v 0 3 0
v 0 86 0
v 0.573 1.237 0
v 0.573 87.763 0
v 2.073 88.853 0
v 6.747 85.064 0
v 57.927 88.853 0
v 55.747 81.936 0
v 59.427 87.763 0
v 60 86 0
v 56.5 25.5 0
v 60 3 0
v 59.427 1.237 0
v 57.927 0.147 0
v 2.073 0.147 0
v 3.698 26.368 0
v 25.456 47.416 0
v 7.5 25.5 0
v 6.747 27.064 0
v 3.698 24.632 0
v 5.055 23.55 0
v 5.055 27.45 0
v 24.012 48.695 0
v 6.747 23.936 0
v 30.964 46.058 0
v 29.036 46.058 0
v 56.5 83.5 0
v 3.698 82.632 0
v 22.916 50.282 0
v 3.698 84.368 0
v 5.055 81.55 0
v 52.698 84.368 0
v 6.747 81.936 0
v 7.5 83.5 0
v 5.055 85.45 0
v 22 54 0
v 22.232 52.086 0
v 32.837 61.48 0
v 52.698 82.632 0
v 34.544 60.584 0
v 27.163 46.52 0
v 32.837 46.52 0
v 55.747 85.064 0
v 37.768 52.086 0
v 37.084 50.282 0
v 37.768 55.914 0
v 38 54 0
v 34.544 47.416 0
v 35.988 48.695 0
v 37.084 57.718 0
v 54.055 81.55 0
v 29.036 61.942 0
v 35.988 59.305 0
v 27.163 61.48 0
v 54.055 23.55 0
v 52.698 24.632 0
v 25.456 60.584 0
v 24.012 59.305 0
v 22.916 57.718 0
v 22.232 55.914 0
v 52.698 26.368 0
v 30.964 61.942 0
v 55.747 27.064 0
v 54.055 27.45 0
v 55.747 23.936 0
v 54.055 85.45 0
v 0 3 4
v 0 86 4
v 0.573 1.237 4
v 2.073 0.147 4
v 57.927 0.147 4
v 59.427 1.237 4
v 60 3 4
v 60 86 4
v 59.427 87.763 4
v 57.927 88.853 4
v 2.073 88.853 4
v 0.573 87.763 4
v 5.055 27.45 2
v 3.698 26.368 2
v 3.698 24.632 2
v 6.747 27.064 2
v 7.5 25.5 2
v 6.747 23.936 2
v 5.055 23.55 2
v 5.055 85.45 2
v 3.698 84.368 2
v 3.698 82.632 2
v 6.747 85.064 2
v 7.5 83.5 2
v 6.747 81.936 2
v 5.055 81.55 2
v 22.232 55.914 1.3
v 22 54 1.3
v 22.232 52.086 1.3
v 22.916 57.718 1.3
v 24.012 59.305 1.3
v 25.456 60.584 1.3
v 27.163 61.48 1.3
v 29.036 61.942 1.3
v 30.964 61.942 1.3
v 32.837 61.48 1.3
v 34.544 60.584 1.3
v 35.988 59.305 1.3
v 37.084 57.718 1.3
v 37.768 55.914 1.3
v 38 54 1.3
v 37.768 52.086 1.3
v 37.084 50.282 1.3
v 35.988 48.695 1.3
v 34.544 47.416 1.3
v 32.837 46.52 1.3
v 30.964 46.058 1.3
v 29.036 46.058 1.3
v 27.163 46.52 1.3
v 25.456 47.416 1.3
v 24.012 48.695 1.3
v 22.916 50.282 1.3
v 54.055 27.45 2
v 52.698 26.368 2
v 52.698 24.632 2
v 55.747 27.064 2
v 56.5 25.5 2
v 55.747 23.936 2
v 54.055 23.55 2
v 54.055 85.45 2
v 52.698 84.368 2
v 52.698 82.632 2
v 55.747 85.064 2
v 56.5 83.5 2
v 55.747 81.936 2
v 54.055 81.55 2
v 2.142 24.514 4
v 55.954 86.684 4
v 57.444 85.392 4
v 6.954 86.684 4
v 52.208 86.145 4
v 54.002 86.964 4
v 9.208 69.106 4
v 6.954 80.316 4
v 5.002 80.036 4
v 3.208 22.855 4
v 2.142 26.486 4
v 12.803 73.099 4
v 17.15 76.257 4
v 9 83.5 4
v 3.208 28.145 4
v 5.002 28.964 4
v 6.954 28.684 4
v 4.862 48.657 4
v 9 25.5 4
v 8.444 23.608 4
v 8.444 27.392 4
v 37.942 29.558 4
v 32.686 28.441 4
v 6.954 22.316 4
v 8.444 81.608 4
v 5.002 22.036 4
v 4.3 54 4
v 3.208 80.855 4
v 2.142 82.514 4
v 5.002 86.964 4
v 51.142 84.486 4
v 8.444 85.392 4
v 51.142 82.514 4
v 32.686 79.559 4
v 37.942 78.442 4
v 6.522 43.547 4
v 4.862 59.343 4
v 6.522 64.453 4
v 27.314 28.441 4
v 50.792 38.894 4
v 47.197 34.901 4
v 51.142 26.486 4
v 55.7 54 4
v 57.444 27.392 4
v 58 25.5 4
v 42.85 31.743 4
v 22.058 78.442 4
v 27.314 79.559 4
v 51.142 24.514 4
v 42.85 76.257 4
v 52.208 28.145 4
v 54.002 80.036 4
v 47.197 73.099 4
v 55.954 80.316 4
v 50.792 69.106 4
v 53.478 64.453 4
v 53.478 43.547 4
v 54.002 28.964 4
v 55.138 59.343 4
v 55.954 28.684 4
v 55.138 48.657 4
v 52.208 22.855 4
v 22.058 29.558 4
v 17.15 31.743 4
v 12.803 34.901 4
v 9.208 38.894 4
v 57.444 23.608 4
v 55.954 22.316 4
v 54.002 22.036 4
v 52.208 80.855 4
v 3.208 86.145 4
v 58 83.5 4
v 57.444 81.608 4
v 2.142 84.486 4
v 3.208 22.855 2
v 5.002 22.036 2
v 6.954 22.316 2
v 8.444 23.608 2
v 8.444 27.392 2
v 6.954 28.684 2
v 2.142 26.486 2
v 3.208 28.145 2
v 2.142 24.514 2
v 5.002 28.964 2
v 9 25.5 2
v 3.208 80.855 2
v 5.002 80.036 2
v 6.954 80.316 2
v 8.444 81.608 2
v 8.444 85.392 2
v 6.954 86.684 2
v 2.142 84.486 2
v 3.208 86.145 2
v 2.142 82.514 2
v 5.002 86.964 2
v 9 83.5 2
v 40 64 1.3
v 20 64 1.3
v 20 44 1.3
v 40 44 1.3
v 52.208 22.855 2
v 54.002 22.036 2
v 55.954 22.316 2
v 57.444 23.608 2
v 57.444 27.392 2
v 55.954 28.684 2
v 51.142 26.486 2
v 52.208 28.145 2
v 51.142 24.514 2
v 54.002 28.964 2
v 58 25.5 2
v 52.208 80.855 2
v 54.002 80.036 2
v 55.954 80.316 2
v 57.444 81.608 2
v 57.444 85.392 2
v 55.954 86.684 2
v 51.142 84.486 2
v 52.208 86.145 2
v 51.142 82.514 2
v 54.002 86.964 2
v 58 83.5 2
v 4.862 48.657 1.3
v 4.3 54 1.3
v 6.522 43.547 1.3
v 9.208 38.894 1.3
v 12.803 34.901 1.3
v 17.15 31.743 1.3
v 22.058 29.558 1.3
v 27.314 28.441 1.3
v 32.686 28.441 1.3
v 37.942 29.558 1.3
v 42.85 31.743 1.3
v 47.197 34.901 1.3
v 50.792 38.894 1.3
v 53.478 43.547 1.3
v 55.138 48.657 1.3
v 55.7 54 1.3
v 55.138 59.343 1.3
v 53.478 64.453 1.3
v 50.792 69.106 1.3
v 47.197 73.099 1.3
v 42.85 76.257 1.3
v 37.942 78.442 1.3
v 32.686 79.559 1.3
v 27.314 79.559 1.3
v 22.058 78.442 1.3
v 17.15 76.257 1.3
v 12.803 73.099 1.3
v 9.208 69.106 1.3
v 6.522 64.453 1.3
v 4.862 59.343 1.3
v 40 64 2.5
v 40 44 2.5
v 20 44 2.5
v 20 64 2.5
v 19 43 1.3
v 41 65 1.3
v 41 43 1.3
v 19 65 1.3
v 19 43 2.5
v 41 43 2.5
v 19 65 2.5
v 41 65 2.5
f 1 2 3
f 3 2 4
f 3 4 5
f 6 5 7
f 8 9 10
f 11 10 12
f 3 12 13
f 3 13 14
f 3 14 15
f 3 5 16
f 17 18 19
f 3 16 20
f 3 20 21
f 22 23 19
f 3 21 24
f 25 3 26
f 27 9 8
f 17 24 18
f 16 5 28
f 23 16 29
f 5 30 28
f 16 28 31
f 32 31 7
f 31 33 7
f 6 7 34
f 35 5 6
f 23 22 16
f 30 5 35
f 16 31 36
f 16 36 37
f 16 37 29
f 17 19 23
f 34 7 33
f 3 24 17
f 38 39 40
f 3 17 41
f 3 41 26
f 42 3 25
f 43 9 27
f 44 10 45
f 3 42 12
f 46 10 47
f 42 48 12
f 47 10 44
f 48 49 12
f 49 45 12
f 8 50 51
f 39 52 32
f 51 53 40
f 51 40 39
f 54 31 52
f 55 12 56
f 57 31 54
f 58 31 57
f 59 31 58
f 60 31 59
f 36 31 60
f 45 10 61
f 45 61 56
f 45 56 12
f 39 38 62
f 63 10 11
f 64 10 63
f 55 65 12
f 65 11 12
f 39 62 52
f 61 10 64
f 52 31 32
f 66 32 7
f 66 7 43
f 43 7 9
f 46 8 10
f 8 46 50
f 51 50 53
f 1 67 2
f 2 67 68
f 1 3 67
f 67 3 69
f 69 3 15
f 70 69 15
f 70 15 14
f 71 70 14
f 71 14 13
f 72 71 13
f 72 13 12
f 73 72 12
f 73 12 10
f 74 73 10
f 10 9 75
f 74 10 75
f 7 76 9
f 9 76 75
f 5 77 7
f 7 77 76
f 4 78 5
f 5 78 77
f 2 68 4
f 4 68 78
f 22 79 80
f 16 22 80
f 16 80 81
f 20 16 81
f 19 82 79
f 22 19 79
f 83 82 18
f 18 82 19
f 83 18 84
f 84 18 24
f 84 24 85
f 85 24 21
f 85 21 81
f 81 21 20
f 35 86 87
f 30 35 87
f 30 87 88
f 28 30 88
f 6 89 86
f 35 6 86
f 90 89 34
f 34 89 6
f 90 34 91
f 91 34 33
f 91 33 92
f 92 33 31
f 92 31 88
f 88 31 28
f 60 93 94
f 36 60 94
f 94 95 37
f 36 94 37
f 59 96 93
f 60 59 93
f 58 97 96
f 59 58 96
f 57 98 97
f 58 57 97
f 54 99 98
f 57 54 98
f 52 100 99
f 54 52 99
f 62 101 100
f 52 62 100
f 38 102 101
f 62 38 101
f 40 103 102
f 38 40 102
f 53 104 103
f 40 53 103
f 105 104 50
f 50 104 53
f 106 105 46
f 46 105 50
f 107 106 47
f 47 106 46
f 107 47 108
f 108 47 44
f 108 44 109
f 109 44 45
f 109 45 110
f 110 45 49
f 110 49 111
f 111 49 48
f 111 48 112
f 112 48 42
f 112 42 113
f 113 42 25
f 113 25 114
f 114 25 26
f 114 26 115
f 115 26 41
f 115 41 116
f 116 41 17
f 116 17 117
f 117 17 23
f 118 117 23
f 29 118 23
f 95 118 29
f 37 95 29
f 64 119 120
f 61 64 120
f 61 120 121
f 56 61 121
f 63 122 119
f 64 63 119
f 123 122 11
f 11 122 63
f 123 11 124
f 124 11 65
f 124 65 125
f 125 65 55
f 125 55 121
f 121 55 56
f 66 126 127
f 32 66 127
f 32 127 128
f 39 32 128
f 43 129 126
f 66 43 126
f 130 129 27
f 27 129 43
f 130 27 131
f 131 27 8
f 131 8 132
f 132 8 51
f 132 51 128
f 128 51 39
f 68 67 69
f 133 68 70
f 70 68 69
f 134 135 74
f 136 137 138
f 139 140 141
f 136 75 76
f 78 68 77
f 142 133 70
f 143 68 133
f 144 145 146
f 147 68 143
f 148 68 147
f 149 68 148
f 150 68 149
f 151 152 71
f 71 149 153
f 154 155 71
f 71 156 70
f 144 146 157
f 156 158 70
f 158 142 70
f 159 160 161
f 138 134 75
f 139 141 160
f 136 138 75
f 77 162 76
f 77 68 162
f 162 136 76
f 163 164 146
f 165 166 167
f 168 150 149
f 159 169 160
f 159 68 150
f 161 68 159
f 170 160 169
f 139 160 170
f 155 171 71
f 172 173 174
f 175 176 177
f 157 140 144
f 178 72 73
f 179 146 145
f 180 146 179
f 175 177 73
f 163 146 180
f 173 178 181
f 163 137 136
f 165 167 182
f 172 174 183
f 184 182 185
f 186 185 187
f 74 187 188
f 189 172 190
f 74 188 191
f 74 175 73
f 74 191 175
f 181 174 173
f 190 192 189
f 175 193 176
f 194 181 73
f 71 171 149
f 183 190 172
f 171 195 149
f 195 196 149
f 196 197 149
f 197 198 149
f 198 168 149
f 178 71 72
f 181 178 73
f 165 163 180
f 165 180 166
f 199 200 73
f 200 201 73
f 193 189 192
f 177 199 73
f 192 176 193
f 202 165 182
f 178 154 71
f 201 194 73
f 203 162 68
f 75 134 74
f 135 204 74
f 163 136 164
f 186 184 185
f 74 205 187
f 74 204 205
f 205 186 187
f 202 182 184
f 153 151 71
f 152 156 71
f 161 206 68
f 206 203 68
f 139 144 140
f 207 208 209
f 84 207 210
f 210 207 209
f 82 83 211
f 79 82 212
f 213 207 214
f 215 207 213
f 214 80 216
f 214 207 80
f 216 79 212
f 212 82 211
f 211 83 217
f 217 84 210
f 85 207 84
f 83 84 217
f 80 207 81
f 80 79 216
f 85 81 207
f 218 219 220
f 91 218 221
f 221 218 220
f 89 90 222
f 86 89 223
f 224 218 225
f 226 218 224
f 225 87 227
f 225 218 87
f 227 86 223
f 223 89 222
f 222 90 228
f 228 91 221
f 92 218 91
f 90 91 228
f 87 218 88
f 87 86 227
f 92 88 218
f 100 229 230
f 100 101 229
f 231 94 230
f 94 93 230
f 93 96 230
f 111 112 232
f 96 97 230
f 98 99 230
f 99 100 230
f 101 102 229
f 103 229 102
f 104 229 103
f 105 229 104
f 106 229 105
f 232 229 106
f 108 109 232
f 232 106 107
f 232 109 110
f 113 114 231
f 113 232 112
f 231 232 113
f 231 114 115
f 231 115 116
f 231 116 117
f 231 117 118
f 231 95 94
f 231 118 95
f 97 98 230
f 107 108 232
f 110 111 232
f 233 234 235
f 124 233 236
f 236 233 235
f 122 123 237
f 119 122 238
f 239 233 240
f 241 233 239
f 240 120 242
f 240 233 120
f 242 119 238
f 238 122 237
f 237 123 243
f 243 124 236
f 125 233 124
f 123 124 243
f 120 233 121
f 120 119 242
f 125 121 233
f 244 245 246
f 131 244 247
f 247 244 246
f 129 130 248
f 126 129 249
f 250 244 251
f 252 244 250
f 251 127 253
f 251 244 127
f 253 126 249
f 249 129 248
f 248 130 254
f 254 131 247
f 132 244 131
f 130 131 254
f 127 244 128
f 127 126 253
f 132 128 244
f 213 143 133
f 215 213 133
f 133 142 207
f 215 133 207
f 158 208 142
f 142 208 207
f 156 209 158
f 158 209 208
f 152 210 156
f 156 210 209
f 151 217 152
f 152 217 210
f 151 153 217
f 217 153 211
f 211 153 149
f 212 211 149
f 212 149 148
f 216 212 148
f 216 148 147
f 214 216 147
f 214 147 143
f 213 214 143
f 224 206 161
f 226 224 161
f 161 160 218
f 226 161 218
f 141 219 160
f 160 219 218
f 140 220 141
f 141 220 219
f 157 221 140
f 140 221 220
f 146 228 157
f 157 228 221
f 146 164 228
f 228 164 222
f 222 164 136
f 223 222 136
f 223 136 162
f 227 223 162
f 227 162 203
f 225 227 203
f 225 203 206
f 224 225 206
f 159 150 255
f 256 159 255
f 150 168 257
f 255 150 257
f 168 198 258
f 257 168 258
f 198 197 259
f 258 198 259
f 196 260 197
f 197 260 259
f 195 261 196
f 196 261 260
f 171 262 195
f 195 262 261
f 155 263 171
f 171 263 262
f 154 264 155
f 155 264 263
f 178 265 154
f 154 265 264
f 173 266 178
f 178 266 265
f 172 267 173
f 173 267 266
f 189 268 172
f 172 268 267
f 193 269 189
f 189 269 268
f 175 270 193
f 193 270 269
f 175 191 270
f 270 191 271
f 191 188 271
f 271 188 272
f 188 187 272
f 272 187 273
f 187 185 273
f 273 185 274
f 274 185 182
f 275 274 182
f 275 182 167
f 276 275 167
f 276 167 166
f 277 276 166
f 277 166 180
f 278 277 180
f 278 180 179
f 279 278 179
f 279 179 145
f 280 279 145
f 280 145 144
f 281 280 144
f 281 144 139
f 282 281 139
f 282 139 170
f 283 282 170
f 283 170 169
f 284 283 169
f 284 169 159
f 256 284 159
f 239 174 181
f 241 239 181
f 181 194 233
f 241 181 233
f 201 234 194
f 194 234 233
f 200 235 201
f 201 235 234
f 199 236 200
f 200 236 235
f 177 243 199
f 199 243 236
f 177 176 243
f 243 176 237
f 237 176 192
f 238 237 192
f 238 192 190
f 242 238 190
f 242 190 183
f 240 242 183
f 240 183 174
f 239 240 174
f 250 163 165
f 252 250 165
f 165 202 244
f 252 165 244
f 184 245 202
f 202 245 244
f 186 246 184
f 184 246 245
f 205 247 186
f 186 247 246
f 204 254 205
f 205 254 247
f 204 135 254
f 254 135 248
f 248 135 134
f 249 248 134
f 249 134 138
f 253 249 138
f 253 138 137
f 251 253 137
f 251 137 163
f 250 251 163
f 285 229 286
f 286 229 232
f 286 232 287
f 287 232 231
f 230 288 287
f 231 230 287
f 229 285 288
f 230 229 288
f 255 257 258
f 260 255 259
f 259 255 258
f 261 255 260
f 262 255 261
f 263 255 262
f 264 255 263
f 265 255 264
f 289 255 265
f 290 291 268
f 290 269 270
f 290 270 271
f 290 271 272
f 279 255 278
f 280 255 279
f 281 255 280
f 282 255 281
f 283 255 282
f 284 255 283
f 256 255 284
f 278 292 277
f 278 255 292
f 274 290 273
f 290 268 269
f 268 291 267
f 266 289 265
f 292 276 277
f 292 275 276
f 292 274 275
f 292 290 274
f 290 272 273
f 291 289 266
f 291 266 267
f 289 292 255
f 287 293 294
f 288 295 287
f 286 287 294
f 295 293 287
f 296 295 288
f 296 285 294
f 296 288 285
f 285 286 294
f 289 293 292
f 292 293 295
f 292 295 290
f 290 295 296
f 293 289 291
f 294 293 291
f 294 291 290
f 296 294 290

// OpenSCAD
pared = 4;
pared2 = 2*pared;
medPared = pared/2;

ringRad = 51.4;//51.4
esqRad  = 3;

raspX = 57;//58
raspY = 86;//85
raspZ = 15.5;//15.5
raspD1 = 3.45;
raspDP = 22;
raspD2 = raspDP+pared2;//Altura lados
raspAlza = 2.6;

vidrioW = 20;
vidrioD = 0.5;

//translate([-2,-2,27])
if(1)
{
tapa();
}

module tapa()
{

translate([19,43,0])
vidrio();

//translate([30,54.5,0])
//makeRing((ringRad/2),pared-1,pared+1);

difference()
{

hull()
{
	translate([medPared,medPared,0])
	cube([raspX,raspY,pared]);
	esquinas();
}

translate([30,54,-0.1])
cylinder(r=8,10);

translate([30,54,pared-2.7])
cylinder(r=ringRad/2,10);


translate([5.5,25.5,-2])
cylinder(r=2,10);

translate([54.5,25.5,-2])
cylinder(r=2,10);

translate([5.5,83.5,-2])
cylinder(r=2,10);

translate([54.5,83.5,-2])
cylinder(r=2,10);


translate([5.5,25.5,medPared])
cylinder(r=3.5,10);

translate([54.5,25.5,medPared])
cylinder(r=3.5,10);

translate([5.5,83.5,medPared])
cylinder(r=3.5,10);

translate([54.5,83.5,medPared])
cylinder(r=3.5,10);


}

}

module esquinas()
{
	translate([esqRad,esqRad,0])
	cylinder(r=3,pared);
	
	translate([raspX,esqRad,0])
	cylinder(r=3,pared);

	translate([esqRad,raspY,0])
	cylinder(r=3,pared);
	
	translate([raspX,raspY,0])
	cylinder(r=3,pared);

}

module vidrio()
{	
	difference()
	{
	cube([vidrioW+medPared,vidrioW+medPared,medPared+vidrioD]);
	
	translate([1,1,-0.1])
	cube([vidrioW,vidrioW,medPared+vidrioD+0.2]);
	
	}
}


module makeRing(hueco,pared,height)
{
	difference()
	{
		cylinder(r=hueco+pared,height);
		
		translate([0,0,-0.1])
		cylinder(r=hueco,height+0.2);
	}
}
